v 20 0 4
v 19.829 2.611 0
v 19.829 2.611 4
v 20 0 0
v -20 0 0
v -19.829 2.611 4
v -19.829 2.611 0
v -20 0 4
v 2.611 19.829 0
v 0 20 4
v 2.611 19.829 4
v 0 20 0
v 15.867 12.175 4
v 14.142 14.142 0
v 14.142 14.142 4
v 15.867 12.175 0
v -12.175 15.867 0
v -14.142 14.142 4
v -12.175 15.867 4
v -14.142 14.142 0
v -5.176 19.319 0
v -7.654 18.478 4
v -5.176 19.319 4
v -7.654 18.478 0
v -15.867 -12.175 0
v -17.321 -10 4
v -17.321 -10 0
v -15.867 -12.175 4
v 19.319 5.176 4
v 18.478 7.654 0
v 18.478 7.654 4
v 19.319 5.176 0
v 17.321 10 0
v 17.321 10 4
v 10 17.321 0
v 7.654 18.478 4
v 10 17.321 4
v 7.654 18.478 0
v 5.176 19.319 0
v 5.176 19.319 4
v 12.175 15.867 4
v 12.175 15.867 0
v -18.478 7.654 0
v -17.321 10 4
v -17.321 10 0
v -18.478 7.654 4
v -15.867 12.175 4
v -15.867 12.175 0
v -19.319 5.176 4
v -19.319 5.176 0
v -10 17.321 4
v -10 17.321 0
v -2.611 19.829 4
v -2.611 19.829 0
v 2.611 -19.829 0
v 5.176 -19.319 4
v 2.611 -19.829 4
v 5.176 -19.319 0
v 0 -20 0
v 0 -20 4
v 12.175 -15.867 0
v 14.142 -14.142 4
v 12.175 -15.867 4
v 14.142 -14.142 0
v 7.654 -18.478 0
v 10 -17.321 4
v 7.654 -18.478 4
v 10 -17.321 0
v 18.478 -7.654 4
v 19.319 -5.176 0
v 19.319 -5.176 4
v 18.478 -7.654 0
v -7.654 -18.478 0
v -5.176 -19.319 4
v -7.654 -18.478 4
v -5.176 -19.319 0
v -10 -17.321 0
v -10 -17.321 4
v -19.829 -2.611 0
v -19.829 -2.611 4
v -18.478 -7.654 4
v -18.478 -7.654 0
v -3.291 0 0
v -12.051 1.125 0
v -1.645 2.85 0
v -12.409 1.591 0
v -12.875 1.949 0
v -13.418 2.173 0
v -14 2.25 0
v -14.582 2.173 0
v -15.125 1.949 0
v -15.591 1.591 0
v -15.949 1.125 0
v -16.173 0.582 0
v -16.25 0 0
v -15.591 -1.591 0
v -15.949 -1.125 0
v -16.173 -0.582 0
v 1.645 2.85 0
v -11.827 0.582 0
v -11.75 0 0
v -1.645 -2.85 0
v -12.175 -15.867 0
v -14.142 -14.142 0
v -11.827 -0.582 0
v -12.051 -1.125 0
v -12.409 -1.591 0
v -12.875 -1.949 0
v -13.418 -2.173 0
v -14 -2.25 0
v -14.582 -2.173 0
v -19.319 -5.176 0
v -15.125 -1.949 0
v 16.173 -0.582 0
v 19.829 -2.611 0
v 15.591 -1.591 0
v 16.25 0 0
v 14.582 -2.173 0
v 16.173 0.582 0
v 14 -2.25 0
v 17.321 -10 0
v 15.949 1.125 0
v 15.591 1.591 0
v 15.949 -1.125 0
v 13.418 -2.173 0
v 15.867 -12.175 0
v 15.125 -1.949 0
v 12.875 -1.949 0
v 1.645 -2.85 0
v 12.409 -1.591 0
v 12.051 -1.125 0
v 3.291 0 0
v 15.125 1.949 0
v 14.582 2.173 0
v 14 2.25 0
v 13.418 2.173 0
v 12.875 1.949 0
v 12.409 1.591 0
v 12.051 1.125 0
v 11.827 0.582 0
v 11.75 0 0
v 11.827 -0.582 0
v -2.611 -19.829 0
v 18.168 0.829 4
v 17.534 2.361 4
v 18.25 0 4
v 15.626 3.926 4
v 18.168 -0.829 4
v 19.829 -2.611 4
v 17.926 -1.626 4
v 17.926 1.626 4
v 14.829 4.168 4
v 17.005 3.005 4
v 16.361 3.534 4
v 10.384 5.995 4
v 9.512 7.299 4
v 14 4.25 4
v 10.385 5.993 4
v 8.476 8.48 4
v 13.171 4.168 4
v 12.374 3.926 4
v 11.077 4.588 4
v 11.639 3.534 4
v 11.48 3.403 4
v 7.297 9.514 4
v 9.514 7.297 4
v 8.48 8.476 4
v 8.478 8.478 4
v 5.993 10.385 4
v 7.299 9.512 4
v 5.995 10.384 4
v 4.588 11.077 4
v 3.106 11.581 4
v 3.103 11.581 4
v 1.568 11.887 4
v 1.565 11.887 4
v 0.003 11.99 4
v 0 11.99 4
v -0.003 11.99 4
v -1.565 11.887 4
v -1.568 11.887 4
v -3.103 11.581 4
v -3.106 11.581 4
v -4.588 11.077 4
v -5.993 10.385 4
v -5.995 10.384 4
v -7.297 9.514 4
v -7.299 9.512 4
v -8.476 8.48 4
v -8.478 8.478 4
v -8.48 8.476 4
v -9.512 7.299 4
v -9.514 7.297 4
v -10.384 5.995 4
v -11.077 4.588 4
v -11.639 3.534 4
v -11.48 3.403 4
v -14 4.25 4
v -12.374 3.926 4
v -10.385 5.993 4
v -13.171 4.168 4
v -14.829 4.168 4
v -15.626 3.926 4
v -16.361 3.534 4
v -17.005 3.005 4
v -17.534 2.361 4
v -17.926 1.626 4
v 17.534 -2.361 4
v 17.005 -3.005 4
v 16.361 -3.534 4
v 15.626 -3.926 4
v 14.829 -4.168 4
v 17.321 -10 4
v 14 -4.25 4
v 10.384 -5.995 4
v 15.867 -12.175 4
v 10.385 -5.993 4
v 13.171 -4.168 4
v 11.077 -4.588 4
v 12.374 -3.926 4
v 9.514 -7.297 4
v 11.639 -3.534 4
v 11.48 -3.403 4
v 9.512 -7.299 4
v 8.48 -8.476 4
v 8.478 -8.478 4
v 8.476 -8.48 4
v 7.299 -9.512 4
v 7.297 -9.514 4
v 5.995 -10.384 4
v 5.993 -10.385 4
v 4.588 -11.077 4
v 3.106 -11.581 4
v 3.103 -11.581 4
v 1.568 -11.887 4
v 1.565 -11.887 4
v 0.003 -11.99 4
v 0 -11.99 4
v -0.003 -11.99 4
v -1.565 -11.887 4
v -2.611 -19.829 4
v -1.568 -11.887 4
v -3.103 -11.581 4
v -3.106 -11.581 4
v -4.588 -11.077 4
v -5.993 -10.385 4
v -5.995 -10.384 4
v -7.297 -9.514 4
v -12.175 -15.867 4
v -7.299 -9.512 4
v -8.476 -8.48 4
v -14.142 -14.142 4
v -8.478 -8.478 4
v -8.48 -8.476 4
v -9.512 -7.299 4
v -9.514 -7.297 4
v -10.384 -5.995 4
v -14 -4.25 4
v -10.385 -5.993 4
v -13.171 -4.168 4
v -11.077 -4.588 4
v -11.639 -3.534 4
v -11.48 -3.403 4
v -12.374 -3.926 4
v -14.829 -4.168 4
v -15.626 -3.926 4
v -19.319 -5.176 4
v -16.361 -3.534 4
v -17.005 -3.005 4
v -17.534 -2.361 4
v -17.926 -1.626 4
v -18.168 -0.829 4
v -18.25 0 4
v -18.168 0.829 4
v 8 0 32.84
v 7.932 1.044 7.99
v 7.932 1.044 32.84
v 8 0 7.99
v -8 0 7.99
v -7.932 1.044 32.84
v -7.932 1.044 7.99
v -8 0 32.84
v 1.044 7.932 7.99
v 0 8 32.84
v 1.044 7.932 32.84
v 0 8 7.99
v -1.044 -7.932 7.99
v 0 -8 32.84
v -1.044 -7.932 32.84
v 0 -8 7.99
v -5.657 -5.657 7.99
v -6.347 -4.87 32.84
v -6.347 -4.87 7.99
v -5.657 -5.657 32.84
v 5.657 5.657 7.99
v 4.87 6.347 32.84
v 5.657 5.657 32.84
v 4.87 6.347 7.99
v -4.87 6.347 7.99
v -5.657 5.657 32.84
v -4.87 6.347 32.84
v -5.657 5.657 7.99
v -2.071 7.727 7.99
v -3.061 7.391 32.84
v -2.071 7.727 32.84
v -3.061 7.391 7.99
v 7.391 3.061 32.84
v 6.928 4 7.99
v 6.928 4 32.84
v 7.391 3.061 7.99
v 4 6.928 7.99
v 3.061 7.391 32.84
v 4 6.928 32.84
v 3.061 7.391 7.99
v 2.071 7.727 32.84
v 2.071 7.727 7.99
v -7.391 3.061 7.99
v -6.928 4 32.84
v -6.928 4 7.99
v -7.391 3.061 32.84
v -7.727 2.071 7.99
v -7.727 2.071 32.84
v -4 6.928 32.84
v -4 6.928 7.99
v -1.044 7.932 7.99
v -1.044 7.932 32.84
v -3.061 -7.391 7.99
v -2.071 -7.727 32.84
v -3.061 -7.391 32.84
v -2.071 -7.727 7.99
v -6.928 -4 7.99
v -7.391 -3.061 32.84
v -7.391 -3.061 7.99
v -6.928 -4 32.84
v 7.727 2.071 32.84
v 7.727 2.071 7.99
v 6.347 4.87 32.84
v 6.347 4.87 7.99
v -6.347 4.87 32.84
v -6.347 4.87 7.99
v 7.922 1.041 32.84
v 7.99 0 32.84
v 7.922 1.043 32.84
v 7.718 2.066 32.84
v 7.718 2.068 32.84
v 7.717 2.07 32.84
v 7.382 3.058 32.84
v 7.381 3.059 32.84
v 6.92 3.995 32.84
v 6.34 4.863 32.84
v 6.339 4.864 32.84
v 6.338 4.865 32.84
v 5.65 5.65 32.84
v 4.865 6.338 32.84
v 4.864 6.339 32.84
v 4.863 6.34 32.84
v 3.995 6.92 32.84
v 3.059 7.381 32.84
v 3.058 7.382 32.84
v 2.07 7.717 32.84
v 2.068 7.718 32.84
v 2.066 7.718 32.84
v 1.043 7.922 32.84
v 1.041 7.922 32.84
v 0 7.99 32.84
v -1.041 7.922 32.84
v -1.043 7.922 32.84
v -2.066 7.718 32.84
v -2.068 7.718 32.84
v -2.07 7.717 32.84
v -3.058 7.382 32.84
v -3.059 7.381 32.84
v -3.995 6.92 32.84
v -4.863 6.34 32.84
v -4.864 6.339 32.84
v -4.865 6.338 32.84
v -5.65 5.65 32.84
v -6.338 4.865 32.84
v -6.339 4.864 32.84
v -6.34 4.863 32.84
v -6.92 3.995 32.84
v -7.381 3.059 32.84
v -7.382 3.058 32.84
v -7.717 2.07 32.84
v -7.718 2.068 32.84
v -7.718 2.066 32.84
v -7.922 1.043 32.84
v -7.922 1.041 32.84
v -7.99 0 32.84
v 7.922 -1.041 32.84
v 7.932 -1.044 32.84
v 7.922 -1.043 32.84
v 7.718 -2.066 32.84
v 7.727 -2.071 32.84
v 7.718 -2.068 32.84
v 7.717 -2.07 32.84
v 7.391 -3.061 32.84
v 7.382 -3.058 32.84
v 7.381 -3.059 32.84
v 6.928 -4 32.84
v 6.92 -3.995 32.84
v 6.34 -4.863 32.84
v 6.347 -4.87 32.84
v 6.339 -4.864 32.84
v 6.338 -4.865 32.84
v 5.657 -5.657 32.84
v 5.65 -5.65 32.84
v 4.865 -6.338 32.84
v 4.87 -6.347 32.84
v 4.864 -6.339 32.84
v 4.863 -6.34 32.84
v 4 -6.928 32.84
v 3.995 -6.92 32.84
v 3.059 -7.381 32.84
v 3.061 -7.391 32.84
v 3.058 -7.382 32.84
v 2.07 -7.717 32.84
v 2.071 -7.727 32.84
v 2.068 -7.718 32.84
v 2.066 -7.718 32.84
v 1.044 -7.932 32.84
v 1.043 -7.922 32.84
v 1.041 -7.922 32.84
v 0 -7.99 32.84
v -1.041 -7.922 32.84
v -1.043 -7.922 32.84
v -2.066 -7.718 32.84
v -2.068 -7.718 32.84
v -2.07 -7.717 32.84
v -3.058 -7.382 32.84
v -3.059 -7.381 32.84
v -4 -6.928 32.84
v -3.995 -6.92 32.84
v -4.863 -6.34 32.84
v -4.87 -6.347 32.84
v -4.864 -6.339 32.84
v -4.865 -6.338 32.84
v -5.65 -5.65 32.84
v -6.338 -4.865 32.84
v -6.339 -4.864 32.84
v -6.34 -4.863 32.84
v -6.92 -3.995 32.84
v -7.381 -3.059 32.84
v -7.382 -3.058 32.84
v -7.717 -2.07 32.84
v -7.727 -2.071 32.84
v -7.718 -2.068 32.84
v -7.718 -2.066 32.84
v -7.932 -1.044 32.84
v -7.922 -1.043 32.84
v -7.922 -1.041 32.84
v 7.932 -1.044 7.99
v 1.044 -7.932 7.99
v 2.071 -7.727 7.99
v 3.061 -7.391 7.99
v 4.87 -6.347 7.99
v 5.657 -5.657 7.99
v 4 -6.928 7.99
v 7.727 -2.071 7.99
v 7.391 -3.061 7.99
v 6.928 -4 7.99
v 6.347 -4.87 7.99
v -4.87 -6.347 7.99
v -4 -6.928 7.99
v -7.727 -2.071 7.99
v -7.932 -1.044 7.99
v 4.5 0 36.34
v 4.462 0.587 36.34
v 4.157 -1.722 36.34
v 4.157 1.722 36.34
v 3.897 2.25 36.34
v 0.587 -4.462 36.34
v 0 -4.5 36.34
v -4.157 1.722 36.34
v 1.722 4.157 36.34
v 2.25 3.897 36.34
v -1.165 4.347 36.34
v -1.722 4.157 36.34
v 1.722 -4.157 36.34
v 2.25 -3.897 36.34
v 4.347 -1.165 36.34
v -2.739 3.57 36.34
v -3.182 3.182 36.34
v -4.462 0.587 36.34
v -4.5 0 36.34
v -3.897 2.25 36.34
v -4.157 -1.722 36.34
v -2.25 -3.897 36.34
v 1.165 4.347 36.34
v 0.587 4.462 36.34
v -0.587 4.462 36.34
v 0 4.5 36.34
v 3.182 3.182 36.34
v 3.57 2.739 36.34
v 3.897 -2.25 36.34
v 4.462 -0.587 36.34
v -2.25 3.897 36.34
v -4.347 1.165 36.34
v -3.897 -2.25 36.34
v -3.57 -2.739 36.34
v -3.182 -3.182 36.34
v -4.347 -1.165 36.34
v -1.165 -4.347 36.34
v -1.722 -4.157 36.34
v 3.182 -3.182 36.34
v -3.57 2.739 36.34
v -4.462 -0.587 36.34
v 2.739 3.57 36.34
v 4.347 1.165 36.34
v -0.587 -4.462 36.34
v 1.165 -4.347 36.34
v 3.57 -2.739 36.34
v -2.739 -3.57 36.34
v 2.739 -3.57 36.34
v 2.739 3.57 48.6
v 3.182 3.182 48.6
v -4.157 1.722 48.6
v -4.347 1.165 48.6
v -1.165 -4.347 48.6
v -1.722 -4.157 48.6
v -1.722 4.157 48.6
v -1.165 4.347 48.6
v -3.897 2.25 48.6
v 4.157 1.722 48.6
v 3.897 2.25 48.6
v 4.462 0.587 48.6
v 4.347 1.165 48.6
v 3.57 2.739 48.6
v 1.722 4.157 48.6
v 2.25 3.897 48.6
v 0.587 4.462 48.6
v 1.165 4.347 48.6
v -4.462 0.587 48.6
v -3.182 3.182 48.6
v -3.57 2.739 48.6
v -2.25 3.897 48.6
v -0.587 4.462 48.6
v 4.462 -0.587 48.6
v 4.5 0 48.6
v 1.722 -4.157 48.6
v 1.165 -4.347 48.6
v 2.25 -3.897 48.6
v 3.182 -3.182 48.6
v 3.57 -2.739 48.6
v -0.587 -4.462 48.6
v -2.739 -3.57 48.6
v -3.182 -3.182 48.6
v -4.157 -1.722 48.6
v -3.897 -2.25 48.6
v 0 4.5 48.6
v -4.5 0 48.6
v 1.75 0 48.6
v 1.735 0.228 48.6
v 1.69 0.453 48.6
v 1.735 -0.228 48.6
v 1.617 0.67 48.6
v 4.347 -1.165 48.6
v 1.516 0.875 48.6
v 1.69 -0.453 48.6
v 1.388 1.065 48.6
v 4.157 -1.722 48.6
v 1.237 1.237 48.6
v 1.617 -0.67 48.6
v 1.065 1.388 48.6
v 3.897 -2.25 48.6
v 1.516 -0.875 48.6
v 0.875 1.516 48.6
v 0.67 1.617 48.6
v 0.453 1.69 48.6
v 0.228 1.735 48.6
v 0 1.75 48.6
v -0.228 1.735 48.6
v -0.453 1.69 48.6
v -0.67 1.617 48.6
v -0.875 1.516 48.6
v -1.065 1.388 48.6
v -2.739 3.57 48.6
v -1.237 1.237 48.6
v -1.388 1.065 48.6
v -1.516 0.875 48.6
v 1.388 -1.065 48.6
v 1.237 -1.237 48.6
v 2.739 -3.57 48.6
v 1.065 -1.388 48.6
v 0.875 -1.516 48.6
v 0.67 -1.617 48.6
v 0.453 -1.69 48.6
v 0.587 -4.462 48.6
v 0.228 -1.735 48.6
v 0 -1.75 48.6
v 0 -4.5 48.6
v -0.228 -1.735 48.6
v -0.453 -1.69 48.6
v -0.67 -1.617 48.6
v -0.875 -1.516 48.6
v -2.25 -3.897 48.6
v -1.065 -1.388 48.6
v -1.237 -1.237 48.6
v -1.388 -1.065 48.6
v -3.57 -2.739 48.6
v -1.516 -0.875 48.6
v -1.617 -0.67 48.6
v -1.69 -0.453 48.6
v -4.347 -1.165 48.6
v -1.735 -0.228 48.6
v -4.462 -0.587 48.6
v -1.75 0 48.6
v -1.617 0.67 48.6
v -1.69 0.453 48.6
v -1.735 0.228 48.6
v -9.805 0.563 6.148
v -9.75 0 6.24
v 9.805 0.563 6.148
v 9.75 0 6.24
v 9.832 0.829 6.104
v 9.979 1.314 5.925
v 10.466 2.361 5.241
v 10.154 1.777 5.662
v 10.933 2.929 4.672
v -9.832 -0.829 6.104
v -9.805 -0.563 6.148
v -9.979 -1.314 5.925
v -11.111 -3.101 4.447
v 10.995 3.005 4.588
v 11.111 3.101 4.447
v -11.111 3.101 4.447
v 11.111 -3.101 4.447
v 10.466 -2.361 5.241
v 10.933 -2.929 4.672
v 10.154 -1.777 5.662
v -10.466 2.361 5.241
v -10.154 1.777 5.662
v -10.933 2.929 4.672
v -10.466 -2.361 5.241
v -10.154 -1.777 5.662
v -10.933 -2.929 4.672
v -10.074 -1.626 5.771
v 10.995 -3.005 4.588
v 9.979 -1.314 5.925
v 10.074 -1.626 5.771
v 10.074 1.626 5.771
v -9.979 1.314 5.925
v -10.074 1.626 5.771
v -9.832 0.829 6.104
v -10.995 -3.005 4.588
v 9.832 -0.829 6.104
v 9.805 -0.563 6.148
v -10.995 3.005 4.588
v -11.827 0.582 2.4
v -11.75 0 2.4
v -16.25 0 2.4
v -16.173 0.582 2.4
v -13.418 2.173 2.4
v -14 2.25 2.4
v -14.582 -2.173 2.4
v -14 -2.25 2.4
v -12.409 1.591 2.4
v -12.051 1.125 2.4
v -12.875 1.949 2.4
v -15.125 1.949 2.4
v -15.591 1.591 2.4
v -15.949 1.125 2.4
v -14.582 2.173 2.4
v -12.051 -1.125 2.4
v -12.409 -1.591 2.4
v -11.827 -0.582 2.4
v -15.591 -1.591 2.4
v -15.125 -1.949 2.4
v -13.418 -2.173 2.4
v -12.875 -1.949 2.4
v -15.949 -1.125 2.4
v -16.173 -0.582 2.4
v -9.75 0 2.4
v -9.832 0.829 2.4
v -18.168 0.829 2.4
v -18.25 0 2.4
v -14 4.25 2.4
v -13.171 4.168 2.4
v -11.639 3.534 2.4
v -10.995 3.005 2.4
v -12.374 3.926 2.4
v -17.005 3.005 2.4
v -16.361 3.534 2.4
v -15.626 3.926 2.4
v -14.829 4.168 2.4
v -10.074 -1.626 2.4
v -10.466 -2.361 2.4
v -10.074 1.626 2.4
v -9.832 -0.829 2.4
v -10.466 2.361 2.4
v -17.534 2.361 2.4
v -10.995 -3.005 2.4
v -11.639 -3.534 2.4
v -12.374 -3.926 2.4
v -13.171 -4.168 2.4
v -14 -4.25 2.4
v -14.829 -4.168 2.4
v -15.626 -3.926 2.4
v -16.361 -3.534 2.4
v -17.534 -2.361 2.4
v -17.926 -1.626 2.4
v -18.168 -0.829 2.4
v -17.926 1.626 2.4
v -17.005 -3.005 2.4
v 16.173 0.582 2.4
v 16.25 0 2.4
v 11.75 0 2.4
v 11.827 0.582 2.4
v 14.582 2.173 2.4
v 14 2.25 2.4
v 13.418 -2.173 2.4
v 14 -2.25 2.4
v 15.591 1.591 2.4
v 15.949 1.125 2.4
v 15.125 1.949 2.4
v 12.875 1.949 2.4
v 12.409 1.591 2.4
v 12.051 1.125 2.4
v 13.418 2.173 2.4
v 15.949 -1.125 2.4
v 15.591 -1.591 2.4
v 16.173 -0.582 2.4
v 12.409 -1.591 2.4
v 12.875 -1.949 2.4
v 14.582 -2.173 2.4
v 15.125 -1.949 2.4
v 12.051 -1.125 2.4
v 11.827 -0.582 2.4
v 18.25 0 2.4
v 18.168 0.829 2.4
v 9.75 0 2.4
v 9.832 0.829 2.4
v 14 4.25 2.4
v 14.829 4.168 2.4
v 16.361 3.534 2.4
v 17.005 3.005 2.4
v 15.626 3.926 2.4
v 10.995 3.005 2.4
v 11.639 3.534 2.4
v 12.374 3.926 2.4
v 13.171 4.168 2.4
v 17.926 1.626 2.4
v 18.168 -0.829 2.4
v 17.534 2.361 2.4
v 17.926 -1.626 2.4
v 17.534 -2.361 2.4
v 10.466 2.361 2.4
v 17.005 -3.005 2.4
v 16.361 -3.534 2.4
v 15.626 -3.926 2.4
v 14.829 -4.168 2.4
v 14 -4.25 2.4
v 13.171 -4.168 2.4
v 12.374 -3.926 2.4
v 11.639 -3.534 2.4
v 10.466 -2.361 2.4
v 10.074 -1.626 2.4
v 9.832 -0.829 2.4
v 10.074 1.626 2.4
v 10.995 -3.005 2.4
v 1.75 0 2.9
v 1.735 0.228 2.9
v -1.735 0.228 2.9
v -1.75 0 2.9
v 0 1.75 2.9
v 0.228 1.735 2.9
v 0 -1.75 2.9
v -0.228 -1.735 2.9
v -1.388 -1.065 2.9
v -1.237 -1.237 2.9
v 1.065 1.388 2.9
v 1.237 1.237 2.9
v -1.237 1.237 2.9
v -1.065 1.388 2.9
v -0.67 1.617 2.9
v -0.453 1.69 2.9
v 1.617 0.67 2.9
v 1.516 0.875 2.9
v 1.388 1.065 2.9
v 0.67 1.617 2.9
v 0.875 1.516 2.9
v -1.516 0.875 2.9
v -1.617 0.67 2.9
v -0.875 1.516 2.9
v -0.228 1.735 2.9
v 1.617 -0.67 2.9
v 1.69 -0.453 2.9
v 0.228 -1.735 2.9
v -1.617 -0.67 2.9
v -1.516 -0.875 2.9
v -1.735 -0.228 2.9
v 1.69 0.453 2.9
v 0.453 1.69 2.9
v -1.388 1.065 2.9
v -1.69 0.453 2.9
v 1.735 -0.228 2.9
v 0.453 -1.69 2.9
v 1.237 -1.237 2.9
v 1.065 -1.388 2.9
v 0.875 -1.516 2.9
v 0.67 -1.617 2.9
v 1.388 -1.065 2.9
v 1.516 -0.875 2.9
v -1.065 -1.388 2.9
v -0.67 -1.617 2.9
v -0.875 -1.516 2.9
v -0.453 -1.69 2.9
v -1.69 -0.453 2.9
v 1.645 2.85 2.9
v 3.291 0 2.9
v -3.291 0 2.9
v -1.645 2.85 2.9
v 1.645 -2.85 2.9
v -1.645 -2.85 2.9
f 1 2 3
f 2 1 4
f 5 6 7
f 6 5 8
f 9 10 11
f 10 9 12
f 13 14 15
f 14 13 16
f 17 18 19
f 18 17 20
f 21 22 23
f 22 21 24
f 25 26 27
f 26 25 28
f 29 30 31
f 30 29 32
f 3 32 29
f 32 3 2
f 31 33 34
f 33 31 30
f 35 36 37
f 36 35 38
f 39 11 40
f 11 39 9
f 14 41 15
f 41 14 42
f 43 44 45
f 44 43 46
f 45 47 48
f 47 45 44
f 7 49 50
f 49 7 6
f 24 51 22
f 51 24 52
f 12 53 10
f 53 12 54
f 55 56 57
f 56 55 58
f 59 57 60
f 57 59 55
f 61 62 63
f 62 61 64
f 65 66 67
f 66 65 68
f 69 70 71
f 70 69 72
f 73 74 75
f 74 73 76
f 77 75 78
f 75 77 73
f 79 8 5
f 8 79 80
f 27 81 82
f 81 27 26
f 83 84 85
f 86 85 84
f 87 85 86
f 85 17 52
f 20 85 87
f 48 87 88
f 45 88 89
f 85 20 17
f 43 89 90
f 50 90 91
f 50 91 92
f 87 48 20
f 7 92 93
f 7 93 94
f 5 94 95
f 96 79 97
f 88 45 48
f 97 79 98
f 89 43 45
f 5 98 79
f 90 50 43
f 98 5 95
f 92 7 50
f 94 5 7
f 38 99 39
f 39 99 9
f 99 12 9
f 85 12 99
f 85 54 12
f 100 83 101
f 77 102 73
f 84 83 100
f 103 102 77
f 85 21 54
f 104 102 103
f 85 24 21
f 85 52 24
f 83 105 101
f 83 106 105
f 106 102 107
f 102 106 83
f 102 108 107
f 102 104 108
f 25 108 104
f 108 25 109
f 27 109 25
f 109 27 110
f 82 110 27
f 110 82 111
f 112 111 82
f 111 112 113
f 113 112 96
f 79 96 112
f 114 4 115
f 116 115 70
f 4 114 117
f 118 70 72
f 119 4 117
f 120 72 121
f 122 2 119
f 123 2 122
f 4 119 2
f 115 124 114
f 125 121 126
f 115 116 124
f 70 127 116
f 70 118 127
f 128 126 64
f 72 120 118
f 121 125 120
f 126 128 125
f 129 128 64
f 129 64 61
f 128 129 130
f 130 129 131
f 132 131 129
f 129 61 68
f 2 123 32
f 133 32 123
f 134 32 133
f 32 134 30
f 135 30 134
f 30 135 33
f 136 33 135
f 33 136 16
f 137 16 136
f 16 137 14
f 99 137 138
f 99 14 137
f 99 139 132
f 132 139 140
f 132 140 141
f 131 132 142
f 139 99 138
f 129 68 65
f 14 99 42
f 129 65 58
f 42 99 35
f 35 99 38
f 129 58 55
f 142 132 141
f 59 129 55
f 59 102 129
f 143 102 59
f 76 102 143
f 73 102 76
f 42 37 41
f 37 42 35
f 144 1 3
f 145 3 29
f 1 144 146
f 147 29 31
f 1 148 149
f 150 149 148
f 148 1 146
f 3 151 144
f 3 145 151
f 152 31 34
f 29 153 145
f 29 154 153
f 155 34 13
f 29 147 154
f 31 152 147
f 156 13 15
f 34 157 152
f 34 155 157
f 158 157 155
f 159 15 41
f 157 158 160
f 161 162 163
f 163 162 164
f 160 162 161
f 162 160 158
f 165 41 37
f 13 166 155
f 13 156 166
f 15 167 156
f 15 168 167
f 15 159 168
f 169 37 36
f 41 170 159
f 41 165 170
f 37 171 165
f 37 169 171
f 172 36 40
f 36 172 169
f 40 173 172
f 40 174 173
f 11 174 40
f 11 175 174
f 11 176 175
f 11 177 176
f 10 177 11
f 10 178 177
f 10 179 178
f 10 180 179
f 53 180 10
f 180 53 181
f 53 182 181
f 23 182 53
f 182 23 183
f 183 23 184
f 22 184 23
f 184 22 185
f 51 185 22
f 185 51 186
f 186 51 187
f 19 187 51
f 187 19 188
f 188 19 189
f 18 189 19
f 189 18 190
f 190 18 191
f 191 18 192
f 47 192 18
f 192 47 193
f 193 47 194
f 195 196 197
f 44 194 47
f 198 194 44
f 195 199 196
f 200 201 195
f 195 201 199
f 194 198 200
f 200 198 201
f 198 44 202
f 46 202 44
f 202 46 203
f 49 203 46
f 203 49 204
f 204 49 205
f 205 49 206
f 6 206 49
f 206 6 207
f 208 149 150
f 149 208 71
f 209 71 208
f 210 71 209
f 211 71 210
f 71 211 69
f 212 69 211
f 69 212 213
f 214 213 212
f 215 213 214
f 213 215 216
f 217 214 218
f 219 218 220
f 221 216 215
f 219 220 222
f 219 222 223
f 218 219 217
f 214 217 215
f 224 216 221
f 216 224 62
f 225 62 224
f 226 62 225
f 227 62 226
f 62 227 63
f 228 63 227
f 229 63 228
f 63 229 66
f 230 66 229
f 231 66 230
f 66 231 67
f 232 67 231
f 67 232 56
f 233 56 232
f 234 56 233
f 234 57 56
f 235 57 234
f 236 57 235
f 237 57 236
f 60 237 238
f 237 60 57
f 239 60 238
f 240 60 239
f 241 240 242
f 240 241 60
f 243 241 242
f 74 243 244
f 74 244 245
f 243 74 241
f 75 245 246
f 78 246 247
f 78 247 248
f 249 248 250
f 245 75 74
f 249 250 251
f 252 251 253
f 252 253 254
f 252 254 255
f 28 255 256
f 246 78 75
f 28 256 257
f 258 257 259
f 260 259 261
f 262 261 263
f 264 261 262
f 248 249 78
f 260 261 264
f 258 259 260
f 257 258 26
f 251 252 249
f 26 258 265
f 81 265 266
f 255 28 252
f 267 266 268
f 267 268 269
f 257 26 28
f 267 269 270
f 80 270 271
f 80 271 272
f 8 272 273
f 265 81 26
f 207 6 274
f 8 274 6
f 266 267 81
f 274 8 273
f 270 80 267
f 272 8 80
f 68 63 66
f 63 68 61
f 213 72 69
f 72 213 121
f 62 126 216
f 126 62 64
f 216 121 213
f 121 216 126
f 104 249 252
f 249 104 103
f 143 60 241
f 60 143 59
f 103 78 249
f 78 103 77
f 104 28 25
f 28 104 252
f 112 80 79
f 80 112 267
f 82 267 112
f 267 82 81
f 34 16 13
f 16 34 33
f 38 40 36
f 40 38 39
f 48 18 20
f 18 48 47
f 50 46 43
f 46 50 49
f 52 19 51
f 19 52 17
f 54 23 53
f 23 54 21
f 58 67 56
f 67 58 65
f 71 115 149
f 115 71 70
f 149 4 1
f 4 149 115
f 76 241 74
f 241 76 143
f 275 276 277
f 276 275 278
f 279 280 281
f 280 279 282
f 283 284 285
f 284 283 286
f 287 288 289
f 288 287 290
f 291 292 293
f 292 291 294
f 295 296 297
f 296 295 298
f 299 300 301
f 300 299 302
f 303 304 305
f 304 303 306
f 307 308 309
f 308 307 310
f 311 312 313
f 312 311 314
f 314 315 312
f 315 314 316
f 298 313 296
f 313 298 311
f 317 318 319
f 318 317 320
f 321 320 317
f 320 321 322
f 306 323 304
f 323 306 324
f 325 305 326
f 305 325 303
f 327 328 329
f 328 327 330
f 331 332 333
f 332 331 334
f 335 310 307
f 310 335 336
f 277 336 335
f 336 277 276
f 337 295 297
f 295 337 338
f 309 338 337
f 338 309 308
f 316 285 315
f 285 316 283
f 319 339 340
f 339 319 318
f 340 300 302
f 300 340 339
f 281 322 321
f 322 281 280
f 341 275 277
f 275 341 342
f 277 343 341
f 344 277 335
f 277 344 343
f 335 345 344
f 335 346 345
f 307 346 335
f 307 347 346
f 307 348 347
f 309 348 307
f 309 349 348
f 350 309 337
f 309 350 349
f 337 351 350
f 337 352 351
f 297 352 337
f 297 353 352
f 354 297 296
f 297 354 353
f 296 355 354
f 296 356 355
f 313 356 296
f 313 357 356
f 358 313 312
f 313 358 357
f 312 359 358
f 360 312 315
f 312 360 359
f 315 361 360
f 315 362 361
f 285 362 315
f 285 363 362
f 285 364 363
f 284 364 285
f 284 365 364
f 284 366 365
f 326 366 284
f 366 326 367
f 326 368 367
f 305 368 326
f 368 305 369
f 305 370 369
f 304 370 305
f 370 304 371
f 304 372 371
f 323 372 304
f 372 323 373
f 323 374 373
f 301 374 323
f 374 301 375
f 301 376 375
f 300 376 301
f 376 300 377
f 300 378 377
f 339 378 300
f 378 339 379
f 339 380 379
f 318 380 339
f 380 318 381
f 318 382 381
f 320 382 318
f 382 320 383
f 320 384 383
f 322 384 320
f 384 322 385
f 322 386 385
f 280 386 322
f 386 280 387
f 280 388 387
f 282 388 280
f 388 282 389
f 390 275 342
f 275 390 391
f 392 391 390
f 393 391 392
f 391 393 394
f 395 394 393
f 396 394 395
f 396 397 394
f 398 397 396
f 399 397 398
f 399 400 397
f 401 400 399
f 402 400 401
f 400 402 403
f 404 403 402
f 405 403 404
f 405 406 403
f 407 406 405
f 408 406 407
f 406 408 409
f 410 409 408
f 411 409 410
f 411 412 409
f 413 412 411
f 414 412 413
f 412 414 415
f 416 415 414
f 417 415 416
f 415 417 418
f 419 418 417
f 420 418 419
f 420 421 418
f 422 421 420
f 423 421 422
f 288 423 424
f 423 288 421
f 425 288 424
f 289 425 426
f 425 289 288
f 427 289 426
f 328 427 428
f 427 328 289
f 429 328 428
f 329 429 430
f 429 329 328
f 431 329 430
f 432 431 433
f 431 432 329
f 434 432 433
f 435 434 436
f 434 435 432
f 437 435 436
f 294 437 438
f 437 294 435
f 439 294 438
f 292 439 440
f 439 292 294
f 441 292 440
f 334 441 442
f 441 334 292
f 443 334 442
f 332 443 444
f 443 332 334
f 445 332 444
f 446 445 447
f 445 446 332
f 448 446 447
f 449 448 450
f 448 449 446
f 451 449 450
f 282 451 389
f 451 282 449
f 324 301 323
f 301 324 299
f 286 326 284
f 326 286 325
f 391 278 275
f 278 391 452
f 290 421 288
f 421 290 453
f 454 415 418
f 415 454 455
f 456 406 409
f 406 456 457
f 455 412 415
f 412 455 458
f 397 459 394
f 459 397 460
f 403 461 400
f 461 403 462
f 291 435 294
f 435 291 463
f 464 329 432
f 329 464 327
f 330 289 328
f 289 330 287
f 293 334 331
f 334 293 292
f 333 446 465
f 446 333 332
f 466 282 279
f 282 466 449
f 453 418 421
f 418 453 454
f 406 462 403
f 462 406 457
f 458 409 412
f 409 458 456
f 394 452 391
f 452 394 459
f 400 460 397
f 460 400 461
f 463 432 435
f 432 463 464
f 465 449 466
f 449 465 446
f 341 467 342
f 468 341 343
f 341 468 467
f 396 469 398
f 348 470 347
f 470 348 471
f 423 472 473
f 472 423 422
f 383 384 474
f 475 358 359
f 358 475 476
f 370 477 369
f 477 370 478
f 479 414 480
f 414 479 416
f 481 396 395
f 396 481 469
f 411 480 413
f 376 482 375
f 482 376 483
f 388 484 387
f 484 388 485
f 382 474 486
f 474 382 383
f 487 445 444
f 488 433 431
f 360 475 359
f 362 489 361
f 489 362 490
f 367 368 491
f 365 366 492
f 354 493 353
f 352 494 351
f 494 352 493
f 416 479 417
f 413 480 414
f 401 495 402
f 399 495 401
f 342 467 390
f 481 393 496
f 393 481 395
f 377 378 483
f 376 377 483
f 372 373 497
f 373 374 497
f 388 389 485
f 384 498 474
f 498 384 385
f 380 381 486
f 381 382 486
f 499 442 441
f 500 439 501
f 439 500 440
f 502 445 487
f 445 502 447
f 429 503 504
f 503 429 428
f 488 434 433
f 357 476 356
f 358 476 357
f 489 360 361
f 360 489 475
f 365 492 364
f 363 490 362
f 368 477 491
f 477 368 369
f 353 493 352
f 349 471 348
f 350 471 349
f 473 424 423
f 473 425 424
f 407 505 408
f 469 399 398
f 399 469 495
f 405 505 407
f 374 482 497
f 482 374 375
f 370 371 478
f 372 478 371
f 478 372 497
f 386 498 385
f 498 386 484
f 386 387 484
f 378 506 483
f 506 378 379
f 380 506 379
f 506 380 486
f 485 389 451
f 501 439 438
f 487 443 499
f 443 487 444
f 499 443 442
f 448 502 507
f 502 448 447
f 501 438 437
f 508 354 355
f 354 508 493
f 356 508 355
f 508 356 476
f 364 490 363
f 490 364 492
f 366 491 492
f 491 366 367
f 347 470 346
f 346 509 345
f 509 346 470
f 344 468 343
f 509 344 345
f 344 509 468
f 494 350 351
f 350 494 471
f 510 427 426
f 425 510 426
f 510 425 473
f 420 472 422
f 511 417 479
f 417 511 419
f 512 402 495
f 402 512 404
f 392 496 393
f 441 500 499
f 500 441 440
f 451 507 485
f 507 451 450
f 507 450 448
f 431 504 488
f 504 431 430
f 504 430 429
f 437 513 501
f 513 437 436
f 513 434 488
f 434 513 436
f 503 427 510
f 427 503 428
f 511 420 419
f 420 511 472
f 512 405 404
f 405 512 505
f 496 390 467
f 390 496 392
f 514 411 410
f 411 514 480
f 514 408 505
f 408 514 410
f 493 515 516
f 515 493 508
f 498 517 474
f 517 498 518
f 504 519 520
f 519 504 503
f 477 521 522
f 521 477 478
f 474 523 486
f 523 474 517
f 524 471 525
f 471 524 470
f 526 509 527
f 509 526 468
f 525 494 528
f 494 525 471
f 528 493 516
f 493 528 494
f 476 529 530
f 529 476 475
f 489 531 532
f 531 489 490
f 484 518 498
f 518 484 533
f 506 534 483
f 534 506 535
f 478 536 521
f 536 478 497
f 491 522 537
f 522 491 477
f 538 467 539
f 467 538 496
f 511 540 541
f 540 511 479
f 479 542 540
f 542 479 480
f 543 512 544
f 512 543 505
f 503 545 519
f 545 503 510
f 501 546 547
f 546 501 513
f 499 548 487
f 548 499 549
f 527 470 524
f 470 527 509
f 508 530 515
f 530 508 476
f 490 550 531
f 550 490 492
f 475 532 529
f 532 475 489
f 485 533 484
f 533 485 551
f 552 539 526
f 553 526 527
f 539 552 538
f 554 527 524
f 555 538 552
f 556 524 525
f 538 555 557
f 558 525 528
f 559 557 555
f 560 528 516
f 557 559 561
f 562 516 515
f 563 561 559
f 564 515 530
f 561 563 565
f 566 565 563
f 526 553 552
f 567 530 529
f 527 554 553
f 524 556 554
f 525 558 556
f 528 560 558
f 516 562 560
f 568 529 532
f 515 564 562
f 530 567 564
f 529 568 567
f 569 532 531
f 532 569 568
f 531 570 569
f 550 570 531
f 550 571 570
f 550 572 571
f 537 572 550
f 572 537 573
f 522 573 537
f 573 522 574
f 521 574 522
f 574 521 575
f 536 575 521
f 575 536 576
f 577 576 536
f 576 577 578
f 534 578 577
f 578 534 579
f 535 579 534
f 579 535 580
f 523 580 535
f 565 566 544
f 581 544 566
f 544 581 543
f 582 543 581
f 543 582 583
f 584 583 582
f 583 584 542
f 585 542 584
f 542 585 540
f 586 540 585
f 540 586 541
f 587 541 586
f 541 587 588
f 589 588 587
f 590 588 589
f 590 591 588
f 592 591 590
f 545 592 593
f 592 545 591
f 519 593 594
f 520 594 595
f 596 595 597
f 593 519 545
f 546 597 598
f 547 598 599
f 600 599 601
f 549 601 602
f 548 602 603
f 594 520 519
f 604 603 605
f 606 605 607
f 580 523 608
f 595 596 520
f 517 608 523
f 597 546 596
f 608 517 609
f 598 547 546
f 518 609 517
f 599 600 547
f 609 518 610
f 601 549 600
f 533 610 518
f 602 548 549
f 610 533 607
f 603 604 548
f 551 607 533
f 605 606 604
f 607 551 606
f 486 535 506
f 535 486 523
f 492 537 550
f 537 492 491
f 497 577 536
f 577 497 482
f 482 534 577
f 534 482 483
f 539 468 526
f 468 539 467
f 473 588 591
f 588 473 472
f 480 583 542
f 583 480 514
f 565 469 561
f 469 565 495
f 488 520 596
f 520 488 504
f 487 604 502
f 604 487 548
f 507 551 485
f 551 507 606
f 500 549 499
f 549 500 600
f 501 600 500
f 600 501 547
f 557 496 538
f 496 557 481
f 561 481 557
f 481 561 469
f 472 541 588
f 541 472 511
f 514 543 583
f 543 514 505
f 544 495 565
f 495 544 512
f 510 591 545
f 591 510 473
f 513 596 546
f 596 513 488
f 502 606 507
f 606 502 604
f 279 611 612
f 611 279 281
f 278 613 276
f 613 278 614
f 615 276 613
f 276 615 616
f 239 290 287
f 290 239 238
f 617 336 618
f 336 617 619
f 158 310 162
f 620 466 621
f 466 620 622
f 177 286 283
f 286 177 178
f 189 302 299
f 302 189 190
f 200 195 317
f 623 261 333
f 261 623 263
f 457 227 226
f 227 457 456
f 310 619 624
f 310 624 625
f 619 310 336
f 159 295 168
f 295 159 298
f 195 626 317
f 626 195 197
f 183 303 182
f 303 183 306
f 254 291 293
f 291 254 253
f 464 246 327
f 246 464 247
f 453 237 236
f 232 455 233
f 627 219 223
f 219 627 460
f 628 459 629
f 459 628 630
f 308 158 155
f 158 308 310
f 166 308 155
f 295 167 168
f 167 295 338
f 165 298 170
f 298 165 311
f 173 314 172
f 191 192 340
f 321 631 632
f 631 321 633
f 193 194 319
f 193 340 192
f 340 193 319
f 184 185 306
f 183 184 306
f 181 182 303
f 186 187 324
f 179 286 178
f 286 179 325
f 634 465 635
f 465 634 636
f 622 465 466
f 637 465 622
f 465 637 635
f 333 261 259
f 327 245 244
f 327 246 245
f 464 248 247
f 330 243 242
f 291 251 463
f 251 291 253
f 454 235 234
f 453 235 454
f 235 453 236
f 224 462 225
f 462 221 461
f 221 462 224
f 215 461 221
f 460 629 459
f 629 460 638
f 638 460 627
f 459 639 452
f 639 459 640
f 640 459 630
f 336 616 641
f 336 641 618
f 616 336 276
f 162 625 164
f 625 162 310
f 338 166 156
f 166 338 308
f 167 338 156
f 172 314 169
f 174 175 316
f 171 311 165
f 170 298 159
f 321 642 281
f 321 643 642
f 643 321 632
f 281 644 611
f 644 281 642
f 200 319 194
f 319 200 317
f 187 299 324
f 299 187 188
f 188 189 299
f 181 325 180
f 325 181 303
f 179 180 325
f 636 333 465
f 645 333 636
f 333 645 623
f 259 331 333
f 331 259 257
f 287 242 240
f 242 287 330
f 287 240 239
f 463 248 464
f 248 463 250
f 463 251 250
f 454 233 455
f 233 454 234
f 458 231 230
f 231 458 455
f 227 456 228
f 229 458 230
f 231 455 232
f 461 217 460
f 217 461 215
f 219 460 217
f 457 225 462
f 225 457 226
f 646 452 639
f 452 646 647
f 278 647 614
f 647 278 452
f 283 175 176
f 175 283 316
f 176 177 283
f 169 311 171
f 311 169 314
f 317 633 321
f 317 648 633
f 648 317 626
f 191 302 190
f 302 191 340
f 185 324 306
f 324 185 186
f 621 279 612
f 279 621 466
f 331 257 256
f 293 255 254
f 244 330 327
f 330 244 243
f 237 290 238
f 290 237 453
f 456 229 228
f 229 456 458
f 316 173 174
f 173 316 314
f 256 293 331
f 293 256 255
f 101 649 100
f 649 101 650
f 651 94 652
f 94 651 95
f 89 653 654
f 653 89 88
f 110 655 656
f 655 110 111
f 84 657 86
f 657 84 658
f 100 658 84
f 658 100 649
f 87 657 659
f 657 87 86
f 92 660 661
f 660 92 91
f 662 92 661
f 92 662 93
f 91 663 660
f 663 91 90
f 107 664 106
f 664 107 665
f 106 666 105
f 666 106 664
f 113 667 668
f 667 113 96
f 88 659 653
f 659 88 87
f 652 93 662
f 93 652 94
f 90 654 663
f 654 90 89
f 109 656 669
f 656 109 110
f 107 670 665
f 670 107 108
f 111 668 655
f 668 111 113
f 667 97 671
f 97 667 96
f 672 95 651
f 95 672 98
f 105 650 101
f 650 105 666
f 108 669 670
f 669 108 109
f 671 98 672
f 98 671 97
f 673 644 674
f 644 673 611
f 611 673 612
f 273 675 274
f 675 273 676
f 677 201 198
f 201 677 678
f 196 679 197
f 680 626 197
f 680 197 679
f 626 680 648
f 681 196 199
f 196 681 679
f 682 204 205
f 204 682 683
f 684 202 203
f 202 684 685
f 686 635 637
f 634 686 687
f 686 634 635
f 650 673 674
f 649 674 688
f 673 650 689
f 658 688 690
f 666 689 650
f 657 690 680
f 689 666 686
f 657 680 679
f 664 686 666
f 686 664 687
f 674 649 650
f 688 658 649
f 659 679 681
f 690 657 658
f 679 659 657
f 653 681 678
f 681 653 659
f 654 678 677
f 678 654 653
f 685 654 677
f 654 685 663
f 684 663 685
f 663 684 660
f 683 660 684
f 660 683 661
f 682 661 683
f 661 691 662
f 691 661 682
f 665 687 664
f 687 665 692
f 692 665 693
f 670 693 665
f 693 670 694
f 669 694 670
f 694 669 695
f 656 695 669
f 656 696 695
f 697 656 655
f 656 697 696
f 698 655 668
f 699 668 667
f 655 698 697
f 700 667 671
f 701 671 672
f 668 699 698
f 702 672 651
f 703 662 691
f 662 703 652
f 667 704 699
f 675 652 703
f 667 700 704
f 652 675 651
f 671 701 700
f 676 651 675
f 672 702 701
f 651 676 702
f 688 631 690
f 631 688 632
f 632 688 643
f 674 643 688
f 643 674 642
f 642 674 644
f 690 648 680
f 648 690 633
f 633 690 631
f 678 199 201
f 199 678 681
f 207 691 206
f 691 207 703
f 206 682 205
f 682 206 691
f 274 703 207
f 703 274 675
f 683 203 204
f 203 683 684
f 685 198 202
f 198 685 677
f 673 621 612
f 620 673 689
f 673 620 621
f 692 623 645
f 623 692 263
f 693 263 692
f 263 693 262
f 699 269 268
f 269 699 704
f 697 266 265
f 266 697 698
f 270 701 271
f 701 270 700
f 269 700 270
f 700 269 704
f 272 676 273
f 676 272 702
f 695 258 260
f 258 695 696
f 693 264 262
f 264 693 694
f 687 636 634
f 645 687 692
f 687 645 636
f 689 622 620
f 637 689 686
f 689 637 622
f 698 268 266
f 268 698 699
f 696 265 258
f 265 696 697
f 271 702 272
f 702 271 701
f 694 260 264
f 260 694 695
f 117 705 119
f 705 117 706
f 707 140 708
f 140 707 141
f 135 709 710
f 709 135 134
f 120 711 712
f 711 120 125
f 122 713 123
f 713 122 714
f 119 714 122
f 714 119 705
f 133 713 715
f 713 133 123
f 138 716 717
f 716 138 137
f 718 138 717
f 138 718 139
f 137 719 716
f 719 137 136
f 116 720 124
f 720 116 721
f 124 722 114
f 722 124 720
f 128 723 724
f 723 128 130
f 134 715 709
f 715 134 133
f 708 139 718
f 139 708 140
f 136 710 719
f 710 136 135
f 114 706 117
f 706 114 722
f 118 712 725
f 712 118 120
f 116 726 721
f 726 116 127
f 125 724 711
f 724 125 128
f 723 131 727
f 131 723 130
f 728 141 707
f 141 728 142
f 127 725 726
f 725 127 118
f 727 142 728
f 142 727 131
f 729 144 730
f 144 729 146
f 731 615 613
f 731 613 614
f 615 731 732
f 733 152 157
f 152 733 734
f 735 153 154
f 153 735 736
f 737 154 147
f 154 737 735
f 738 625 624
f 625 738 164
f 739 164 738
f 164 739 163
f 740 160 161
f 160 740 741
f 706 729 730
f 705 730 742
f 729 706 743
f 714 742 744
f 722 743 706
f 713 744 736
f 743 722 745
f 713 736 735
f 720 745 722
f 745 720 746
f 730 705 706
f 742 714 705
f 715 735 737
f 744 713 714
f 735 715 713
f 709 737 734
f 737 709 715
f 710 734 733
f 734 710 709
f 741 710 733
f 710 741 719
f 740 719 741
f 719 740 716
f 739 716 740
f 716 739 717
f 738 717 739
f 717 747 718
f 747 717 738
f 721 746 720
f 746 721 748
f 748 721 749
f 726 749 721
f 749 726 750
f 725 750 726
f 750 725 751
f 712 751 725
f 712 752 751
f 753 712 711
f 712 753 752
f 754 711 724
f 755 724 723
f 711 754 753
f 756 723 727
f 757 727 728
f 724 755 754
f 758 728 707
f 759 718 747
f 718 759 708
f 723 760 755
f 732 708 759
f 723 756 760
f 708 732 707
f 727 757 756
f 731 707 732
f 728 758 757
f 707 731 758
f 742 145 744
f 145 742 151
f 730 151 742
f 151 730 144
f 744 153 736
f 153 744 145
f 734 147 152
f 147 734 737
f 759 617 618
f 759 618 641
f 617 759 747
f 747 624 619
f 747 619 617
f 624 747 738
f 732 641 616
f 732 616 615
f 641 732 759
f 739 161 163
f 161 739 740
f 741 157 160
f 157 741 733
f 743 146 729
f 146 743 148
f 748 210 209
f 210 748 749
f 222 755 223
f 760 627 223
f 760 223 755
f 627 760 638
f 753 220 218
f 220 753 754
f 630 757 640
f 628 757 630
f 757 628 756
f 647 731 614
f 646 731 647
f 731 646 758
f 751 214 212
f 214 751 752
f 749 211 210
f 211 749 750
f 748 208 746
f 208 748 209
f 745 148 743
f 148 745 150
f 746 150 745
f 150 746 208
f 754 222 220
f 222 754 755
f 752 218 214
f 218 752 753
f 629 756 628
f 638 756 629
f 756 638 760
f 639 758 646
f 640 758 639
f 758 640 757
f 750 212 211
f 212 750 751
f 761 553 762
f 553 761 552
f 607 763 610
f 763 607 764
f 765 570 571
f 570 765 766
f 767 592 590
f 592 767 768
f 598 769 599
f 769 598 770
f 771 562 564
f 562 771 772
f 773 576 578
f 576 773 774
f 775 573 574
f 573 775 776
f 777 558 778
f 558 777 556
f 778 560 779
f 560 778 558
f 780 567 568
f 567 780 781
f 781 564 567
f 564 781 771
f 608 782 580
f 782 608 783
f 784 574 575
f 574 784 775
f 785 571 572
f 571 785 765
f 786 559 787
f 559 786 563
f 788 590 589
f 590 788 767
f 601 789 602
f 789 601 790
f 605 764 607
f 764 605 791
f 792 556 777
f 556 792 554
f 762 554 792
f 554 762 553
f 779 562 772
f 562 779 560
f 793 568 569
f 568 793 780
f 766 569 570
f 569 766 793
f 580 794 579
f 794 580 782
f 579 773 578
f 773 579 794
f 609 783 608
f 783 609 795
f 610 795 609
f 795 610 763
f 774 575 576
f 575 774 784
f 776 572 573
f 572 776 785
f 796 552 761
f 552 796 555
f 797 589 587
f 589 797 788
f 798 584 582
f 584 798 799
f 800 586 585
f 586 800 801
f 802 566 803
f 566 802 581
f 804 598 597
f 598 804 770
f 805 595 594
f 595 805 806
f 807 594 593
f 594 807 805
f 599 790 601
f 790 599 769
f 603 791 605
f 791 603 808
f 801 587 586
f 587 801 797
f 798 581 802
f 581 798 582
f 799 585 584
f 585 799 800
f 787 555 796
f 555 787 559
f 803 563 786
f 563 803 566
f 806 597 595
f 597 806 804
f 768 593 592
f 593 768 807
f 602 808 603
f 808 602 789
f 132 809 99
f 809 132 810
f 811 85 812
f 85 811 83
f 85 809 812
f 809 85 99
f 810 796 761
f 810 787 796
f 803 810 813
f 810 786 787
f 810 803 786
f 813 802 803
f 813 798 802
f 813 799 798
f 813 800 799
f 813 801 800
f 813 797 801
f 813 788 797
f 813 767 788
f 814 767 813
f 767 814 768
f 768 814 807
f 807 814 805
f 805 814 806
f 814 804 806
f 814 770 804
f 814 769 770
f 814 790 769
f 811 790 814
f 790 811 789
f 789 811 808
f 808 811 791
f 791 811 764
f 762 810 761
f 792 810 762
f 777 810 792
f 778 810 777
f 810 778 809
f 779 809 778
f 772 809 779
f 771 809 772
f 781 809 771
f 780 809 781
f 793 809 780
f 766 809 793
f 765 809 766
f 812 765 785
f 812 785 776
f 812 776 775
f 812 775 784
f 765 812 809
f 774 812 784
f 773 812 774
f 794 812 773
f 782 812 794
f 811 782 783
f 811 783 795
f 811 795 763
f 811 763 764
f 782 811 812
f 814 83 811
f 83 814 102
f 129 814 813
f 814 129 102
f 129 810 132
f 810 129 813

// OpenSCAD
// Gen-EB — STATOR POST (2026-11-02 pedestal frame). Print x6, foot DOWN, no supports (45-degree transition).
// Board -> stator underside = post_h (printed post_h - post_shim_t + one post_shim). The top post_slim_h mm are slim (standoff_od) because the rotor-A rim spins right beside them
// (radial clearance = flange_bolt_r - standoff_od/2 - carrier_od/2); the thick part stays >= 2 mm below the rotor-A steel.
// M3 frame rod: captive M3 nut pressed into the hex pocket under the foot BEFORE screwing the post to the board.
include <parameters.scad>;
$fn = 48;
ph = post_h - post_shim_t;   // printed ONE levelling shim short: 1 post_shim on top = nominal height, 0 or 2 shims = -/+ post_shim_t
cone_h = (post_od - standoff_od) / 2;
thick_h = ph - post_slim_h - cone_h;
difference() {
    union() {
        cylinder(d=post_foot_od, h=post_foot_t);
        cylinder(d=post_od, h=thick_h);
        translate([0, 0, thick_h - 0.01]) cylinder(d1=post_od, d2=standoff_od, h=cone_h + 0.01);
        cylinder(d=standoff_od, h=ph);
        translate([0, 0, post_foot_t - 0.01]) cylinder(d1=post_od + 8, d2=post_od, h=4);
    }
    translate([0, 0, -0.1]) cylinder(d=m3_clear, h=ph + 1);
    translate([0, 0, -0.1]) cylinder(d=m3_nut_af / cos(30), h=3.0, $fn=6);
    for (s = [-1, 1]) translate([s * (post_foot_od / 2 - 6), 0, -0.1]) {
        cylinder(d=wood_screw_d, h=post_foot_t + 1, $fn=24);
        translate([0, 0, post_foot_t - 1.5]) cylinder(d=8.5, h=10, $fn=32);
    }
}
